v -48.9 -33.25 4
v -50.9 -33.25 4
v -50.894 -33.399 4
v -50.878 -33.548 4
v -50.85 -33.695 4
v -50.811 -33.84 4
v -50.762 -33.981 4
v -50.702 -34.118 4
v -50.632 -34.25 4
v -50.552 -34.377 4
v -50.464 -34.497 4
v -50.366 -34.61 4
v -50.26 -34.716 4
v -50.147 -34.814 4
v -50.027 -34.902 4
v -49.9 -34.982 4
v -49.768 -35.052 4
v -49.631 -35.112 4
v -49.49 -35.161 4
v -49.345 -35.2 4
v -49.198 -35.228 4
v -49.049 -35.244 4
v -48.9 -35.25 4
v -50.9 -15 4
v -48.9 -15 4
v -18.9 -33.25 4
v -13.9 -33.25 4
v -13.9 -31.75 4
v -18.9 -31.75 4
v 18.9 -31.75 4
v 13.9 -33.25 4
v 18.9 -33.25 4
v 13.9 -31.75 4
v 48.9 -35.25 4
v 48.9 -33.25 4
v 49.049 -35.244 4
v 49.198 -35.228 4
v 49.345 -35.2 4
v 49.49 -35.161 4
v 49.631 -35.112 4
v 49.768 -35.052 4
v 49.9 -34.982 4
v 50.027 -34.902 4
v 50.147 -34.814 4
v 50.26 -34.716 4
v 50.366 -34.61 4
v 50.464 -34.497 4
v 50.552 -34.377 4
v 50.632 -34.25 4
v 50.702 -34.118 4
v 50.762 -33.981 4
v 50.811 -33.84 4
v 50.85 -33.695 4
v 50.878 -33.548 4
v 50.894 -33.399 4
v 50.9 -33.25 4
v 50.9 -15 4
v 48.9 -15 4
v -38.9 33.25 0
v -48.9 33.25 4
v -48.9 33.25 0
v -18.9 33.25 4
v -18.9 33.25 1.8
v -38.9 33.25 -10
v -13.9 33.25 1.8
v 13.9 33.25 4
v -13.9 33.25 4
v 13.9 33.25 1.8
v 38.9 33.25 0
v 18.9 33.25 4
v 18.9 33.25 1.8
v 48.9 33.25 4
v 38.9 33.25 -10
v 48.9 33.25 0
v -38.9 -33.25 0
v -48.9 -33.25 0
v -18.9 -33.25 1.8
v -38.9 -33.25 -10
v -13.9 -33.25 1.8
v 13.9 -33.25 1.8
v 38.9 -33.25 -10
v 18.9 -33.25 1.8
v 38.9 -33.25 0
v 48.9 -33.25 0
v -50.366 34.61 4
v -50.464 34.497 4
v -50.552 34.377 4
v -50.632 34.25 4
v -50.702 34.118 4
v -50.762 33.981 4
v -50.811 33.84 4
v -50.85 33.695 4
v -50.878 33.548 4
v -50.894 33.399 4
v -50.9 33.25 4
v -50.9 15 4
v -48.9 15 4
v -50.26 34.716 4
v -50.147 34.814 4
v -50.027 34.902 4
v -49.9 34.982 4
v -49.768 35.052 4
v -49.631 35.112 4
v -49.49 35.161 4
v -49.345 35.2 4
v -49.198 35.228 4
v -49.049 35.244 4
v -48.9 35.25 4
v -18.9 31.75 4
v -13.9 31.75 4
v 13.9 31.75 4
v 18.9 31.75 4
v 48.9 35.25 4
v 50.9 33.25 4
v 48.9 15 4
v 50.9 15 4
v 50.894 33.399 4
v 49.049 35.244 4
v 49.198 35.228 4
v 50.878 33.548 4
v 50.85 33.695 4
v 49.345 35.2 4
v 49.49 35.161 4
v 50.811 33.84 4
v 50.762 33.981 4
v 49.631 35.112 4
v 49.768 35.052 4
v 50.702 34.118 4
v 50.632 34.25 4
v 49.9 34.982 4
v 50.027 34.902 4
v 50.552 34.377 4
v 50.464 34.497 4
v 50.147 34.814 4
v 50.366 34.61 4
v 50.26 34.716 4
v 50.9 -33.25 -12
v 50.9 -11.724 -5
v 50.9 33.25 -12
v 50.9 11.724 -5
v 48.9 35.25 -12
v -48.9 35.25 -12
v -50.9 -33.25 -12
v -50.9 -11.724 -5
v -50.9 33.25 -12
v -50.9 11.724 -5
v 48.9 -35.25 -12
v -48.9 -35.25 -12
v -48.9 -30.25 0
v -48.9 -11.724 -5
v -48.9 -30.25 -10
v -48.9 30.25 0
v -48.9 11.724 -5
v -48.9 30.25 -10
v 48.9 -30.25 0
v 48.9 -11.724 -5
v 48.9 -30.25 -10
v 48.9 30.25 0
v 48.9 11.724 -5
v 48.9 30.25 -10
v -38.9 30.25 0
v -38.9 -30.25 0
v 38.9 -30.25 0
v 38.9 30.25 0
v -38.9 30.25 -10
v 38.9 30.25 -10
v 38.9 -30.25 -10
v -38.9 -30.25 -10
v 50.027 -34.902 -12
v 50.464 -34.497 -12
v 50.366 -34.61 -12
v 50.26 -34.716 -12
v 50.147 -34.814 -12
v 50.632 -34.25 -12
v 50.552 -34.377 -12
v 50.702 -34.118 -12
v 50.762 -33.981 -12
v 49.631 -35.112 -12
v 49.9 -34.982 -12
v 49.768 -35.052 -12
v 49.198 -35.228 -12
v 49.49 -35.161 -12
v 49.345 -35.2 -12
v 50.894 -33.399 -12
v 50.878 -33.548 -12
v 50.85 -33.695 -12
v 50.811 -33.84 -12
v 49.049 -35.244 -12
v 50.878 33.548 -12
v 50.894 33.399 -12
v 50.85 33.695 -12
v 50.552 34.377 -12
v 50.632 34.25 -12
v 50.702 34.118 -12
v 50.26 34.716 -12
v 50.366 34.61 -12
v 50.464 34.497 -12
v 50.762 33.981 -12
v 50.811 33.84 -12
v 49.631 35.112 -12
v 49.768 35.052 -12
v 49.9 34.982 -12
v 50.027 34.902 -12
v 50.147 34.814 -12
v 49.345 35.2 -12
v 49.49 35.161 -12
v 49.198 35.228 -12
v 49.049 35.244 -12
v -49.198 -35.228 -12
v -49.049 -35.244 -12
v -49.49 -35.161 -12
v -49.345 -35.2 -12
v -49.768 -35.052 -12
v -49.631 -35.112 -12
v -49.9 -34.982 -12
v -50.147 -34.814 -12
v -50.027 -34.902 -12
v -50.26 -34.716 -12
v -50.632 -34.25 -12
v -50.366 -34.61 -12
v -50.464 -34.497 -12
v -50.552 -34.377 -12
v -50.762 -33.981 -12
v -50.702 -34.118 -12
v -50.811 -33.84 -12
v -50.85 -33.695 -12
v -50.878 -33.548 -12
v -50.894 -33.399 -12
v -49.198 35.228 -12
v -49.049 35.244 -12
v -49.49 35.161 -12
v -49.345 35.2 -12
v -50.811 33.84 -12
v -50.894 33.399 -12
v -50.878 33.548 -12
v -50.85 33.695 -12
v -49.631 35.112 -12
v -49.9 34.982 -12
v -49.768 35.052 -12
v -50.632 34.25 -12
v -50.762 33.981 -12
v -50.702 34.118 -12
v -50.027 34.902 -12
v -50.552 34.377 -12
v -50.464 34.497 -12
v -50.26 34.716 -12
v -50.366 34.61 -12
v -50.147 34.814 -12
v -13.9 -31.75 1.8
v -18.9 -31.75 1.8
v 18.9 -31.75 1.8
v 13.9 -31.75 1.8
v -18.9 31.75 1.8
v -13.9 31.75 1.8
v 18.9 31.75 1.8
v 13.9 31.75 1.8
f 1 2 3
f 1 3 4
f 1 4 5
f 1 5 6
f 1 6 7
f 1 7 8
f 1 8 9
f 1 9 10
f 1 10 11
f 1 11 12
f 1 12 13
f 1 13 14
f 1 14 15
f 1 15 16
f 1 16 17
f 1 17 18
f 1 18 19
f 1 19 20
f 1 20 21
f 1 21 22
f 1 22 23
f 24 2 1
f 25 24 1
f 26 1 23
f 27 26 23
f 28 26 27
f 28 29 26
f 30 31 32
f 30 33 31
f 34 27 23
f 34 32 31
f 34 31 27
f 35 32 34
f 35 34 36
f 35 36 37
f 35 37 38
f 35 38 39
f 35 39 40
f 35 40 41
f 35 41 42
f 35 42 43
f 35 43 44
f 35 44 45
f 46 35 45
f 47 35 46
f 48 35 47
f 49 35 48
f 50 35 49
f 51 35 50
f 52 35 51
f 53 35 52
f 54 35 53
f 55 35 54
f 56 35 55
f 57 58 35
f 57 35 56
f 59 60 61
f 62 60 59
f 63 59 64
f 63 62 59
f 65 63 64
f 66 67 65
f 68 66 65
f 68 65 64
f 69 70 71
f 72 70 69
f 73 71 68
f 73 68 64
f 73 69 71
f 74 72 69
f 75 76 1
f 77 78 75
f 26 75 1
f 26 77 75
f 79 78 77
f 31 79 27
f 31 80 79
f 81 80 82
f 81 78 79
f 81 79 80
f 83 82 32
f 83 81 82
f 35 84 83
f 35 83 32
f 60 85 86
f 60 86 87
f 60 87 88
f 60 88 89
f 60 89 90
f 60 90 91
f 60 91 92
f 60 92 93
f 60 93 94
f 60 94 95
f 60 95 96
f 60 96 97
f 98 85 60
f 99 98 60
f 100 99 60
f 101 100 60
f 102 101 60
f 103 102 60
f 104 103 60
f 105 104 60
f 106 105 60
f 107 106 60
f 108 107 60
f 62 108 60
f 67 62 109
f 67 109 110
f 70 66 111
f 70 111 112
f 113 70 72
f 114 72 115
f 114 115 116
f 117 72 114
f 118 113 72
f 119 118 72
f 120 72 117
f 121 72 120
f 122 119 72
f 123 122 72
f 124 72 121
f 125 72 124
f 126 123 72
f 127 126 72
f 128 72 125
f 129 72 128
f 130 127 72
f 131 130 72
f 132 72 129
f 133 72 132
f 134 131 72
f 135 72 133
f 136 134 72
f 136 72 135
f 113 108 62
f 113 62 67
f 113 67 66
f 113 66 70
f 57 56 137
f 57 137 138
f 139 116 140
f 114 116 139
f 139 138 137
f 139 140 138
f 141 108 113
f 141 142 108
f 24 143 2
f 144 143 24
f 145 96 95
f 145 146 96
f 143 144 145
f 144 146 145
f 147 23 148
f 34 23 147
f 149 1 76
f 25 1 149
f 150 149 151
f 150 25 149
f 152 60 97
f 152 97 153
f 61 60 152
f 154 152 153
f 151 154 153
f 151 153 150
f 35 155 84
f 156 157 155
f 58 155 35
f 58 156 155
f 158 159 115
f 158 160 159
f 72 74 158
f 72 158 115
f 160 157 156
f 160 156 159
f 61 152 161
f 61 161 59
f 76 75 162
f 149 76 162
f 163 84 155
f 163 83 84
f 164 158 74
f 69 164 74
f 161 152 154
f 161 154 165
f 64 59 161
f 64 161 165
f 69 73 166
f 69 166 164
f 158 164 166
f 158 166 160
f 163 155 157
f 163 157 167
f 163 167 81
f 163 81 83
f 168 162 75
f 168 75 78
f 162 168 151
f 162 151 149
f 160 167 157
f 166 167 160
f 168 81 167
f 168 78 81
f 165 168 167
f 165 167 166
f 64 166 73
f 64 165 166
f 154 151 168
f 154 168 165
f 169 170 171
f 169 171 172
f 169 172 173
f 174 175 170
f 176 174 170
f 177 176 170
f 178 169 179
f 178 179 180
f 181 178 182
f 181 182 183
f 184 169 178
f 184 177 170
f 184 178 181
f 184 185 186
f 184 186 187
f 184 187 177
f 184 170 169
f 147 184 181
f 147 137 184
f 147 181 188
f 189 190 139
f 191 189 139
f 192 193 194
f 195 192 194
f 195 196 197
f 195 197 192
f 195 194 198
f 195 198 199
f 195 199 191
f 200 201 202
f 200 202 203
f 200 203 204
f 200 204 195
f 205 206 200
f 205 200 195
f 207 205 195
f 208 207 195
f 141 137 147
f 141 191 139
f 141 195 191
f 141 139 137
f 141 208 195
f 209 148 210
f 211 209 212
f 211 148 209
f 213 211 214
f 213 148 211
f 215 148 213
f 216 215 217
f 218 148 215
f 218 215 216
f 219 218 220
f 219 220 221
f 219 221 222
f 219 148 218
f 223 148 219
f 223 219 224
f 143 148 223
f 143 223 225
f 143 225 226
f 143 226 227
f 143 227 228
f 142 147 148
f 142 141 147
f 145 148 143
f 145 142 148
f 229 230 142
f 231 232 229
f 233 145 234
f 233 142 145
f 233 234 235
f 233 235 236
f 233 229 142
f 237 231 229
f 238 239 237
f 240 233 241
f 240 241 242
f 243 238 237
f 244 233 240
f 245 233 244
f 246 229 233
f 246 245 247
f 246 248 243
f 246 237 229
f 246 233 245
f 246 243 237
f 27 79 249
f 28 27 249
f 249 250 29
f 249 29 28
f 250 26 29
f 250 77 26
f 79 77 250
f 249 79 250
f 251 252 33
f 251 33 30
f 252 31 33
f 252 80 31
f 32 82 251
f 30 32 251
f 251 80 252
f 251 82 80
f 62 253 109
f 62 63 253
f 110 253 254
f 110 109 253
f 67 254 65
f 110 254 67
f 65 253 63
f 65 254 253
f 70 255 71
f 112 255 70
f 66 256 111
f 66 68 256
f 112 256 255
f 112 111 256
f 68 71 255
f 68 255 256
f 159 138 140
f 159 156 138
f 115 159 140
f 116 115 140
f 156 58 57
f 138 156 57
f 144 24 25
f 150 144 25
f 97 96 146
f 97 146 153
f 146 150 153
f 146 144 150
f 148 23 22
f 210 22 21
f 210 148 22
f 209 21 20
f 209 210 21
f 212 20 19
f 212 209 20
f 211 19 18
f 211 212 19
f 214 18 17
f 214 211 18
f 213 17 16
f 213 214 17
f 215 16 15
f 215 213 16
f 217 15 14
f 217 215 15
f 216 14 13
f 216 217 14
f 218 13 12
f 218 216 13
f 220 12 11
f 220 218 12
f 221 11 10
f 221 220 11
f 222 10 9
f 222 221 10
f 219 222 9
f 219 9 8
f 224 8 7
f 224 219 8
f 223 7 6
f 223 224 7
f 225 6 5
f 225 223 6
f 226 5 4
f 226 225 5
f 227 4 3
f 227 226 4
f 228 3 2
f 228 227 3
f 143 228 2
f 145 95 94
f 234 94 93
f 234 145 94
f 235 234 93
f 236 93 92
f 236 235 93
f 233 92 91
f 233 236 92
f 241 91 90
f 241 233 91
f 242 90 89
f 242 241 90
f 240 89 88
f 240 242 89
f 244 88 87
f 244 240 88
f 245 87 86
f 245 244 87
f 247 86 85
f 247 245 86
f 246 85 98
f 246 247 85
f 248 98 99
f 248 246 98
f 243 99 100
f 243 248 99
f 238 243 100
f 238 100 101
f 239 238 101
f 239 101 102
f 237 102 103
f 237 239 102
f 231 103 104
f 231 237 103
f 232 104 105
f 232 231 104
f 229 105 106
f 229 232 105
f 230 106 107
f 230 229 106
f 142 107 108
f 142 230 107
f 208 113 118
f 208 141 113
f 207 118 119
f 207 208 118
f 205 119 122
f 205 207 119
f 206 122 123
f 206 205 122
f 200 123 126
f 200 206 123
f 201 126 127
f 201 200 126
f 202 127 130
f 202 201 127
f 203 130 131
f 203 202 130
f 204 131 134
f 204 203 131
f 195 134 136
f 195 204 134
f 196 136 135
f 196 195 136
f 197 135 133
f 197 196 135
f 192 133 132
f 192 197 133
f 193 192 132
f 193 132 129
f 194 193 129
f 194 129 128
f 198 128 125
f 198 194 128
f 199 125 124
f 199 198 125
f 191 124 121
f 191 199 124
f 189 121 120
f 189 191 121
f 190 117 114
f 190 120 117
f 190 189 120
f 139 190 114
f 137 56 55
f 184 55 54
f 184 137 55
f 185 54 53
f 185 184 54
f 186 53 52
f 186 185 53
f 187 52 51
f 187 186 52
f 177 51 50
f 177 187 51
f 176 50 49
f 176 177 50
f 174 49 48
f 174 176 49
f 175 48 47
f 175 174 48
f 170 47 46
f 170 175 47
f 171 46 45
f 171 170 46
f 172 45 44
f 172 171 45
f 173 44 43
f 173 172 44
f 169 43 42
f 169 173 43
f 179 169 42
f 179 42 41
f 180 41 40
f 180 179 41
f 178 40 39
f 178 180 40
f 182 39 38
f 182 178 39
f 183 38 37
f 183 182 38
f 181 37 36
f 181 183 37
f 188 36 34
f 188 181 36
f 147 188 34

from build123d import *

# Parameters (mm, degrees)
SKETCH1_W                            = 70.5
SKETCH1_H                            = 101.8
SKETCH1_W_2                          = 66.5
SKETCH1_H_2                          = 97.8
BOSS_EXTRUDE1_BOARD_4MM_DEPTH        = 4
SKETCH2_W                            = 101.8
SKETCH2_H                            = 70.5
BOSS_EXTRUDE2_UNDER_10MS_DEPTH       = 10
SKETCH3_W                            = 101.8
SKETCH3_H                            = 70.5
BOSS_EXTRUDE3_BOTTOM_COVER_2MM_DEPTH = 2
SKETCH4_W                            = 5
SKETCH4_H                            = 3.5
BOSS_EXTRUDE4_DEPTH                  = 2.2
SKETCH5_W                            = 128.386338002
SKETCH5_H                            = 30
CUT_EXTRUDE1_CUT_USB_DEPTH           = 9
CUT_EXTRUDE1_CUT_USB_DRAFT           = -20
FILLET1_R                            = 2


with BuildPart() as part:
    # Sketch1 → Boss-Extrude1-board-4mm (new body)
    with BuildSketch(Plane(origin=(0, 0, 0), x_dir=(0, 1, 0), z_dir=(0, 0, 1))):
        Rectangle(SKETCH1_W, SKETCH1_H)
        Rectangle(SKETCH1_W_2, SKETCH1_H_2, mode=Mode.SUBTRACT)
    extrude(amount=BOSS_EXTRUDE1_BOARD_4MM_DEPTH)

    # Sketch2 → Boss-Extrude2-under-10ms (add)
    with BuildSketch(Plane(origin=(0, 0, 0), x_dir=(1, 0, 0), z_dir=(0, 0, -1))):
        Rectangle(SKETCH2_W, SKETCH2_H)
        Polygon((-48.9, 30.25), (-38.9, 30.25), (-38.9, 33.25), (38.9, 33.25), (38.9, 30.25), (48.9, 30.25), (48.9, -30.25), (38.9, -30.25), (38.9, -33.25), (-38.9, -33.25), (-38.9, -30.25), (-48.9, -30.25), align=None, mode=Mode.SUBTRACT)
    extrude(amount=BOSS_EXTRUDE2_UNDER_10MS_DEPTH)

    # Sketch3 → Boss-Extrude3-bottom-cover-2mm (add)
    with BuildSketch(Plane(origin=(0, 0, -10), x_dir=(1, 0, 0), z_dir=(0, 0, -1))):
        Rectangle(SKETCH3_W, SKETCH3_H)
    extrude(amount=BOSS_EXTRUDE3_BOTTOM_COVER_2MM_DEPTH)

    # Sketch4 → Boss-Extrude4 (add)
    with BuildSketch(Plane.XY.offset(1.8)):
        with Locations((-16.4, 33.5)):
            Rectangle(SKETCH4_W, SKETCH4_H)
        with Locations((-16.4, -33.5)):
            Rectangle(SKETCH4_W, SKETCH4_H)
        with Locations((16.4, -33.5)):
            Rectangle(SKETCH4_W, SKETCH4_H)
        with Locations((16.4, 33.5)):
            Rectangle(SKETCH4_W, SKETCH4_H)
    extrude(amount=BOSS_EXTRUDE4_DEPTH)


with BuildPart() as cut_extrude1_cut_usb_tool:
    # Sketch5 → Cut-Extrude1-cut-usb (with draft: the straight prism first)
    with BuildSketch(Plane.XY.offset(4)):
        Rectangle(SKETCH5_W, SKETCH5_H)
    extrude(amount=-CUT_EXTRUDE1_CUT_USB_DEPTH)
    # Cut-Extrude1-cut-usb: the draft: its side faces are tilted about the plane it starts from
    cut_extrude1_cut_usb_sides = [cut_extrude1_cut_usb_tool.faces().sort_by_distance(p)[0] for p in [
        (0, -15, -0.5),
        (64.193169001, 0, -0.5),
        (0, 15, -0.5),
        (-64.193169001, 0, -0.5),
    ]]
    draft(cut_extrude1_cut_usb_sides, Plane.XY.offset(4), CUT_EXTRUDE1_CUT_USB_DRAFT)


with BuildPart() as part_1:
    add(part.part)

    # Cut-Extrude1-cut-usb: cut by cut_extrude1_cut_usb_tool
    add(cut_extrude1_cut_usb_tool.part, mode=Mode.SUBTRACT)

    # Fillet1
    fillet1_edges = [part_1.edges().sort_by_distance(p)[0] for p in [
        (50.9, -35.25, -4),
        (-50.9, -35.25, -4),
        (-50.9, 35.25, -4),
        (50.9, 35.25, -4),
    ]]
    fillet(fillet1_edges, radius=FILLET1_R)


solid = part_1.part
